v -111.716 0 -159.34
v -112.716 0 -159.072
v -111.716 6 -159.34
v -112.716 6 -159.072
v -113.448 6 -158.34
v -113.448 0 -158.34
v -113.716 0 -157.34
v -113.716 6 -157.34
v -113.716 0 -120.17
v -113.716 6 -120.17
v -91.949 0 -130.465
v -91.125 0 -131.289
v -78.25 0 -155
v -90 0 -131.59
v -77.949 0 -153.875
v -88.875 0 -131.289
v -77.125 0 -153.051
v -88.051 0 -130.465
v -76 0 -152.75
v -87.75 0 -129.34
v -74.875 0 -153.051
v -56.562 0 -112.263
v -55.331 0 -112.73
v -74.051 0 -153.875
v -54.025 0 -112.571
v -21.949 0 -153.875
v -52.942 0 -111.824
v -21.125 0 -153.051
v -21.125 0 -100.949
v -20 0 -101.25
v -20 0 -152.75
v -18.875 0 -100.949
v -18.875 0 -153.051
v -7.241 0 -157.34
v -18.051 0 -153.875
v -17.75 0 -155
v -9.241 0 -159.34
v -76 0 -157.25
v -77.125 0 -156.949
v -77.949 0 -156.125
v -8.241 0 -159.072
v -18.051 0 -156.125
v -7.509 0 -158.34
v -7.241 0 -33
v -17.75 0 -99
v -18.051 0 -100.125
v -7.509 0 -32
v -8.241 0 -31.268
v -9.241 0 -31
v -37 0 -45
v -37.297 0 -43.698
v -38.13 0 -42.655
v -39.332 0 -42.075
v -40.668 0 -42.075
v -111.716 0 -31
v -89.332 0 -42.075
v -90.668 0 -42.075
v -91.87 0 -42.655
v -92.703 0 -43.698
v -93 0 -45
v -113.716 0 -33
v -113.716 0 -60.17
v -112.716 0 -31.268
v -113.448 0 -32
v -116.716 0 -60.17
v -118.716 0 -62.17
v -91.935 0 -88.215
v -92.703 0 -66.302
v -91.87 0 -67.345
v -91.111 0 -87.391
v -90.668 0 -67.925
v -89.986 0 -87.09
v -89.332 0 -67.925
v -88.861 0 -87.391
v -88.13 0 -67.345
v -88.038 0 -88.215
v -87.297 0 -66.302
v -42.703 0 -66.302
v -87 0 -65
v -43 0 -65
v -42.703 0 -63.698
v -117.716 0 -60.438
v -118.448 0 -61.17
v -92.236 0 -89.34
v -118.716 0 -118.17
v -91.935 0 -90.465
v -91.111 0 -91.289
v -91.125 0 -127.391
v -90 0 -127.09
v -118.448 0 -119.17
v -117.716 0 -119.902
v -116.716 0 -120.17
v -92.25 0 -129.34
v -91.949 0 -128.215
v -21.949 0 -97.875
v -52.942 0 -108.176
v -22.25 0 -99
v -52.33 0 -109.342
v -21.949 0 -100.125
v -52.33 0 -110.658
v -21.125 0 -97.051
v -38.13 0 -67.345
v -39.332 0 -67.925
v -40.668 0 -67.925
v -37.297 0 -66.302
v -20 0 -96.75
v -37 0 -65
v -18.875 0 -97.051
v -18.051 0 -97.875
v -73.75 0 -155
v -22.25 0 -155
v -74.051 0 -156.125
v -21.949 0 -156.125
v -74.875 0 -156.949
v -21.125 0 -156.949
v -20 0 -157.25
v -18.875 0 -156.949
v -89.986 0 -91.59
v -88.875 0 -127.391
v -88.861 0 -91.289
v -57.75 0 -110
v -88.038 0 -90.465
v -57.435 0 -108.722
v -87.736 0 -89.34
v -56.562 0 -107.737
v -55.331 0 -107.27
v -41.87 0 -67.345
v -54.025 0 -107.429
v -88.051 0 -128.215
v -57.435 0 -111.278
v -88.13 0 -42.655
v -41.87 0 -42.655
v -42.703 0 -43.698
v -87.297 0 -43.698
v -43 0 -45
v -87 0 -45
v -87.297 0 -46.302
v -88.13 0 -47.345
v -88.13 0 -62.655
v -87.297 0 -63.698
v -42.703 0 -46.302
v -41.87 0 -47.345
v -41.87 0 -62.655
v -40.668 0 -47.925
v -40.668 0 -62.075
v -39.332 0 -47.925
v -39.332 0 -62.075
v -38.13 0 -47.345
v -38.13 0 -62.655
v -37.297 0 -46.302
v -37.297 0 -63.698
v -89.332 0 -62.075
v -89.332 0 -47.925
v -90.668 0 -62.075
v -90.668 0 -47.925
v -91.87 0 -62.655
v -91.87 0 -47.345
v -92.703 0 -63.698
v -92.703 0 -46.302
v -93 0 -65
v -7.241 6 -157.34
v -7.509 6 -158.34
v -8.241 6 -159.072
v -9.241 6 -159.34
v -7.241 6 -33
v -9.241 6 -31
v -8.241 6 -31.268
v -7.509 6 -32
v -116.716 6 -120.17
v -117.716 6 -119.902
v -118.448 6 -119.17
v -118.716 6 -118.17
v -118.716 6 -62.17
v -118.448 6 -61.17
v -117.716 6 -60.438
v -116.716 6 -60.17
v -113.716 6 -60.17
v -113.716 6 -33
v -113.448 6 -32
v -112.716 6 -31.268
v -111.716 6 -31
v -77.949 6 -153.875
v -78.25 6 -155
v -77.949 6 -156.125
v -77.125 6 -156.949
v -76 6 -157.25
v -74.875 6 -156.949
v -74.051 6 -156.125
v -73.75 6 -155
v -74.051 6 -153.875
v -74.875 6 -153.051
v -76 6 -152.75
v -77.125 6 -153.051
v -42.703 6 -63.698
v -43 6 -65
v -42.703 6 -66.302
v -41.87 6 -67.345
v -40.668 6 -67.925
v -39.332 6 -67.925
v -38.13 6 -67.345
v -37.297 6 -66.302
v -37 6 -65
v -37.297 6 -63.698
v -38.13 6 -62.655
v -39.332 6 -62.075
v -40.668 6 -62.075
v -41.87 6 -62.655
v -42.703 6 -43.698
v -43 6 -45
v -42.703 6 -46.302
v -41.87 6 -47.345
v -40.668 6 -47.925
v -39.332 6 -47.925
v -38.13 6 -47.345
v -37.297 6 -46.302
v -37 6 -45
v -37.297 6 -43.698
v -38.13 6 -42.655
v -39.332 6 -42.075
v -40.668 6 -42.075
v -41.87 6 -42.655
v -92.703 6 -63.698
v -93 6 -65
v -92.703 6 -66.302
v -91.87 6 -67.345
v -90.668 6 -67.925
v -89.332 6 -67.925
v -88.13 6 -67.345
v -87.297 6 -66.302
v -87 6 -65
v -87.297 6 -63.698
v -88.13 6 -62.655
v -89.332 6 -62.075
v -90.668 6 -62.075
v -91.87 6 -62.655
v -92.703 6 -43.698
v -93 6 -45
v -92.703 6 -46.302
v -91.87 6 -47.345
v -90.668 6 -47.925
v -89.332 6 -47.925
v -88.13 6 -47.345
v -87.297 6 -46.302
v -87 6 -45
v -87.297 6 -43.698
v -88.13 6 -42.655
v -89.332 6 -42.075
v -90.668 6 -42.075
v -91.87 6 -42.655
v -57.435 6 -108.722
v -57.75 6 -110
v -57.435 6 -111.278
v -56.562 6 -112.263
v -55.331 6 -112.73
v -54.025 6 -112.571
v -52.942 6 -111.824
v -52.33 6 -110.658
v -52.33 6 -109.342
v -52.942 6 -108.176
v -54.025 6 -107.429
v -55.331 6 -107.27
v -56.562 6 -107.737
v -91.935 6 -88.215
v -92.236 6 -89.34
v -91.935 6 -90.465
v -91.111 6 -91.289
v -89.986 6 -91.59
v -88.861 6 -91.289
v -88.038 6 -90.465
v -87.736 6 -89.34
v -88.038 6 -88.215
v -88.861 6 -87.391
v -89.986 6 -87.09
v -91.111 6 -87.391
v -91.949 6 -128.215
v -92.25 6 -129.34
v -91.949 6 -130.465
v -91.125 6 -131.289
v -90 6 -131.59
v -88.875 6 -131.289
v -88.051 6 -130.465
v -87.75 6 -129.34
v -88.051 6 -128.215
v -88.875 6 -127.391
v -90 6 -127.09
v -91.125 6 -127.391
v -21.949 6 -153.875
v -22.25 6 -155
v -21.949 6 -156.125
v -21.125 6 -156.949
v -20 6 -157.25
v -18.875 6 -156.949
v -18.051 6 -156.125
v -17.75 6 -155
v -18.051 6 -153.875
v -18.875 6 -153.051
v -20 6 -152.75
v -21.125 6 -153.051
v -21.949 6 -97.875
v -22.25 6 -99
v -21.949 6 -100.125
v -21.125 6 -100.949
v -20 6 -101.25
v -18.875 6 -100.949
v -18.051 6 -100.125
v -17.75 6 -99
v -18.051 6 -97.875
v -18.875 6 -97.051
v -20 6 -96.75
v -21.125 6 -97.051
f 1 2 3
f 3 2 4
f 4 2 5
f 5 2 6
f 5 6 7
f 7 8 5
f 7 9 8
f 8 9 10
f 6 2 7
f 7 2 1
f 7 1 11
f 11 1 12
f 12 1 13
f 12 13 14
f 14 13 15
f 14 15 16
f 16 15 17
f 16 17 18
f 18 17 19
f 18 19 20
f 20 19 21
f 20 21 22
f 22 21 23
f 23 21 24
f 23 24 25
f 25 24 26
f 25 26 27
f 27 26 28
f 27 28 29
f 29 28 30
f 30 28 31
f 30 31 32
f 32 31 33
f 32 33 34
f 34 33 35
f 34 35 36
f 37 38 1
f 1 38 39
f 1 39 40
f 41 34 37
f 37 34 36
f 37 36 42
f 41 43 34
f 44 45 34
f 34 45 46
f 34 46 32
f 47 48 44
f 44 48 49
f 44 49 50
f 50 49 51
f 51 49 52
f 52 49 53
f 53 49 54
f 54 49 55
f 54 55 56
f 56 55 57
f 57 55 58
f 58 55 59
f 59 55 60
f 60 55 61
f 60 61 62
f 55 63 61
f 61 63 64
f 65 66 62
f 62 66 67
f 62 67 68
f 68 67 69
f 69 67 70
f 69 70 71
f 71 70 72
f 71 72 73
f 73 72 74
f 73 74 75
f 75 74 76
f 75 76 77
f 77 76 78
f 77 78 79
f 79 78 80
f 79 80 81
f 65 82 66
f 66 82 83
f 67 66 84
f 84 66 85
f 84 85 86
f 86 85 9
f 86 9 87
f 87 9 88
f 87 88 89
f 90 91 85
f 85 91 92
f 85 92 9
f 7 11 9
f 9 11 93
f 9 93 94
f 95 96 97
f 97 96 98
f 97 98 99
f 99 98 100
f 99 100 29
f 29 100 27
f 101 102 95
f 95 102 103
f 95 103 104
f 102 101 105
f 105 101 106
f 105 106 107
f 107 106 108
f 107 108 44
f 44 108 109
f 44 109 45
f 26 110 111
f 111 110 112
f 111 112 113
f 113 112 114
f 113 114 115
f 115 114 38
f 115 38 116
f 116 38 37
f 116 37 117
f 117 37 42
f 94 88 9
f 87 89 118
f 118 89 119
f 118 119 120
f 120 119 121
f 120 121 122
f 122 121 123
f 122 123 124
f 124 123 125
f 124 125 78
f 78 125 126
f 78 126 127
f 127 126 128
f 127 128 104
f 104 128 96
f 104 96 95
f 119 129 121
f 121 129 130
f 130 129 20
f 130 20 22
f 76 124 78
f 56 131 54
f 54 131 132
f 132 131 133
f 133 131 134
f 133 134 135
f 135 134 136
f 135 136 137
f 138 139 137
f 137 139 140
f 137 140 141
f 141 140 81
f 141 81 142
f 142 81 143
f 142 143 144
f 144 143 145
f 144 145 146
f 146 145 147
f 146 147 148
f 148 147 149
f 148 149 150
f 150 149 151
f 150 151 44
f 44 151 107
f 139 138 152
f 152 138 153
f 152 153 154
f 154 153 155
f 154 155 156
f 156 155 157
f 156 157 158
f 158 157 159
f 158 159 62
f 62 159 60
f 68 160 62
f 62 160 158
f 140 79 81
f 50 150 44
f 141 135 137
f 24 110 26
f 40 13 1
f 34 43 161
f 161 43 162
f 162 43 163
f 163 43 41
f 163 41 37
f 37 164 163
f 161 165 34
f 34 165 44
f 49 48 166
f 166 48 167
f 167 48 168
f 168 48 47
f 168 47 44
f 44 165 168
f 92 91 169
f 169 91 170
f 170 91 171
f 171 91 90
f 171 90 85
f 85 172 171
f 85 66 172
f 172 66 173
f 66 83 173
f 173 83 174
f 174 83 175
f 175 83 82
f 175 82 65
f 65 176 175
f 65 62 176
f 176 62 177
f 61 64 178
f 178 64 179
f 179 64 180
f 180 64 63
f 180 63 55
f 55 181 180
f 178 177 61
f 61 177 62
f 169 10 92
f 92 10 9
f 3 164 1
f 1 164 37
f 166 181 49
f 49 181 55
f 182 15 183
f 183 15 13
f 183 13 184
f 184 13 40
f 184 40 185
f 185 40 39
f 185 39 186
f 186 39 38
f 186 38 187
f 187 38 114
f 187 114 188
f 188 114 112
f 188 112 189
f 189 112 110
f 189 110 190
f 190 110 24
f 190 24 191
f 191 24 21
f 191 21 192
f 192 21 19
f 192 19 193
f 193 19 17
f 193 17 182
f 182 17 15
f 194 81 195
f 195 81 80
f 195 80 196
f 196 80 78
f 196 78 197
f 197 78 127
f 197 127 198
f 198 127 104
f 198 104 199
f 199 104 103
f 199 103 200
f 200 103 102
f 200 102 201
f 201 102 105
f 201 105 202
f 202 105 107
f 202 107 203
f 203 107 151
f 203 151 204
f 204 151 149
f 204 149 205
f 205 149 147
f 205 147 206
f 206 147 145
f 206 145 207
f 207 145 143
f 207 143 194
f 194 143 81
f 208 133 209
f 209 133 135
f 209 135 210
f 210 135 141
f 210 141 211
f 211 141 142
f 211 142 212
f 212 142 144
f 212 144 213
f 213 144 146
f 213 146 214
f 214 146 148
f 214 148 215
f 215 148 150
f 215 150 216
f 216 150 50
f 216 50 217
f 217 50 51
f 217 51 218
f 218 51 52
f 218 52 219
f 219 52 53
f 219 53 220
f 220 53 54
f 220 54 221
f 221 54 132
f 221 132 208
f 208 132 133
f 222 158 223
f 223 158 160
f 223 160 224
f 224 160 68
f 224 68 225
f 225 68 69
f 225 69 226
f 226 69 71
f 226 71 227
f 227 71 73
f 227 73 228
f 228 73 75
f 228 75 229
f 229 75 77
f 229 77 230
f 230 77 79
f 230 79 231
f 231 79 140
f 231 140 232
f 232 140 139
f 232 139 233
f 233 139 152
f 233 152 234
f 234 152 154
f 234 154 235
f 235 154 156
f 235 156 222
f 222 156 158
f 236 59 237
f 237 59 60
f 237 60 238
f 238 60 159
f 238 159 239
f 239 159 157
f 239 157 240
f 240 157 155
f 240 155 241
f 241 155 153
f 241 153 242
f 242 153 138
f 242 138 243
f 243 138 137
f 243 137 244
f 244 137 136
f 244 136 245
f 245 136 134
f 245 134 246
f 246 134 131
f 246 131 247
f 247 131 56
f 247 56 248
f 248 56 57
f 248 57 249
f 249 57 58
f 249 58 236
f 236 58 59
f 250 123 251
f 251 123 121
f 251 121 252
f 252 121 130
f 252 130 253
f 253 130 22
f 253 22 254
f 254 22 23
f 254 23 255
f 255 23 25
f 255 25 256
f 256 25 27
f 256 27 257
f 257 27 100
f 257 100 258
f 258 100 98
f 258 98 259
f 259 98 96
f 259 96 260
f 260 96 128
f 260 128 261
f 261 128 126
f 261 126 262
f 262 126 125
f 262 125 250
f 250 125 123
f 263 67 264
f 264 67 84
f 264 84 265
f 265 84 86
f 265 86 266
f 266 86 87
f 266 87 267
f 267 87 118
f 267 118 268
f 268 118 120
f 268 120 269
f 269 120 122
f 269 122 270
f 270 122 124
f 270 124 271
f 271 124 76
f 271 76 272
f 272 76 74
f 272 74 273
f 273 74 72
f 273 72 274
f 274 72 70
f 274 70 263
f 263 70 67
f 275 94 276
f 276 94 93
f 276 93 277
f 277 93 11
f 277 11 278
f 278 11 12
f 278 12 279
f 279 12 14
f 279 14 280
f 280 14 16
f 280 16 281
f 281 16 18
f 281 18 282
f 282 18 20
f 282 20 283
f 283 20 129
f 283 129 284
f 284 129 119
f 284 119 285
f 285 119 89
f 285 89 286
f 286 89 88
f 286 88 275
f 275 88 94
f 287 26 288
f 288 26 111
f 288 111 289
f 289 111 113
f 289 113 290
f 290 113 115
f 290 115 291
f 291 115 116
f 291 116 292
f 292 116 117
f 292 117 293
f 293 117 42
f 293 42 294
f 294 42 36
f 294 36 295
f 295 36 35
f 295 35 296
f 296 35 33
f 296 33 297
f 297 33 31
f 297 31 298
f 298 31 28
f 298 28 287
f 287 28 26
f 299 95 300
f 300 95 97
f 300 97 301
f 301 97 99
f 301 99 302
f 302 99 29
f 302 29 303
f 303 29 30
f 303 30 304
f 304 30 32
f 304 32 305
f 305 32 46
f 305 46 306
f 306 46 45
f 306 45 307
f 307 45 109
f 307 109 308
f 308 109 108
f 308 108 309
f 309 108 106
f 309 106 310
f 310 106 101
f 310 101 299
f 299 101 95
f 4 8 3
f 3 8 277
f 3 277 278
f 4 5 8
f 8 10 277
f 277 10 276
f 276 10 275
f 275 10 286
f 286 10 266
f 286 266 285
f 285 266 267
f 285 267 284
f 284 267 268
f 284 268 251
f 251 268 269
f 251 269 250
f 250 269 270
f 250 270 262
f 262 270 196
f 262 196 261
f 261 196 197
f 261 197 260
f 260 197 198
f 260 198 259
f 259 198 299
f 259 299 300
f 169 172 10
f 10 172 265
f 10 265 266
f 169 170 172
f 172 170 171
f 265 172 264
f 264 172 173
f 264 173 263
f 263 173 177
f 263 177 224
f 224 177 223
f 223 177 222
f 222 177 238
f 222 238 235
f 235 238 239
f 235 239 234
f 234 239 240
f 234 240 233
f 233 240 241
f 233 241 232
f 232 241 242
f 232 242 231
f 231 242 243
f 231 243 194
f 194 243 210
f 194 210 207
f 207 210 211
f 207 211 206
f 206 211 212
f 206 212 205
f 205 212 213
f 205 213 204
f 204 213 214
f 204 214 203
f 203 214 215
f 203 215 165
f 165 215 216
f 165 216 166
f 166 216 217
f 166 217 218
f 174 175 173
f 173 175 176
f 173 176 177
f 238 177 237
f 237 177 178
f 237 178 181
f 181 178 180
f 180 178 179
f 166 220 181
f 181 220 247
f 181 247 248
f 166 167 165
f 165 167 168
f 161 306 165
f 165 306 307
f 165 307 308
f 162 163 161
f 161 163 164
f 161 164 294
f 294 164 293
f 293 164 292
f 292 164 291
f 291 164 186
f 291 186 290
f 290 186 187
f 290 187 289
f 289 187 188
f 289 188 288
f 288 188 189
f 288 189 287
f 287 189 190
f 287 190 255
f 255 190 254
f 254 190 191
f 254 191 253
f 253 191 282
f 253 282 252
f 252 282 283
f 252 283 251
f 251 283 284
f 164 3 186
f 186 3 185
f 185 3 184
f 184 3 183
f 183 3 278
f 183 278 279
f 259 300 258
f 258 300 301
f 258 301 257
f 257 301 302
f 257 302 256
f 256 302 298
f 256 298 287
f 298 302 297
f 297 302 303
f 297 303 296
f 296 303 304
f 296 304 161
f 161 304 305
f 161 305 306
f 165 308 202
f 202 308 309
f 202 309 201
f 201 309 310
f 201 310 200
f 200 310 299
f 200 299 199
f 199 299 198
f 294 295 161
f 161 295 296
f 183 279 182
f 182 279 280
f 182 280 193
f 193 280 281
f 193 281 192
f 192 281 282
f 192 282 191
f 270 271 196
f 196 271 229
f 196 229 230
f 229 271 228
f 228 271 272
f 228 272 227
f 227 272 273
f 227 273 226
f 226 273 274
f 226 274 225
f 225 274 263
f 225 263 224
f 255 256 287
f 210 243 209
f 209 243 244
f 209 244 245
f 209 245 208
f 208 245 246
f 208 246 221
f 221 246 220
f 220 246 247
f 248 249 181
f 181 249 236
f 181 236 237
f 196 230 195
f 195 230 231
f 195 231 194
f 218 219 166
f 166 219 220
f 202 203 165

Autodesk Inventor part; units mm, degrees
ref_plane "YZ Plane" through (0, 0, 0) normal (1, 0, 0) x (0, 1, 0)
ref_plane "XZ Plane" through (0, 0, 0) normal (0, 1, 0) x (-1, 0, 0)
ref_plane "XY Plane" through (0, 0, 0) normal (0, 0, 1) x (1, 0, 0)
sketch "Sketch1" plane through (0, 0, 0) normal (0, 1, 0) x (-1, 0, 0)
  line L0 (232.1908, -176.5808) -> (232.1908, -3.7592)
  arc A0 (232.1908, -3.7592) -> (227.4316, 1) centre (227.4316, -3.7592) ccw
  line L1 (227.4316, 1) -> (0, 1)
  arc A1 (0, 1) -> (-4.7592, -3.7592) centre (0, -3.7592) ccw
  arc A2 (-4.7592, -176.5808) -> (0, -181.34) centre (0, -176.5808) ccw
  arc A3 (227.4316, -181.34) -> (232.1908, -176.5808) centre (227.4316, -176.5808) ccw
  circle A4 centre (130, -129.34) radius 2.25
  circle A5 centre (129.9861, -89.34) radius 2.25
  circle A6 centre (90, -129.34) radius 2.25
  circle A7 centre (89.9861, -89.34) radius 2.25
  circle A8 centre (180, -110) radius 2.75
  circle A9 centre (55, -110) radius 2.75
  circle A10 centre (90, -45) radius 3
  circle A11 centre (190, -45) radius 3
  circle A12 centre (190, -65) radius 3
  circle A13 centre (90, -65) radius 3
  circle A14 centre (140, -45) radius 3
  circle A15 centre (40, -45) radius 3
  circle A16 centre (140, -65) radius 3
  circle A17 centre (40, -65) radius 3
  line L2 (230.1908, -176.5808) -> (230.1908, -3.7592)
  arc A18 (230.1908, -3.7592) -> (227.4316, -1) centre (227.4316, -3.7592) ccw
  line L3 (227.4316, -1) -> (0, -1)
  arc A19 (0, -1) -> (-2.7592, -3.7592) centre (0, -3.7592) ccw
  arc A20 (-2.7592, -176.5808) -> (0, -179.34) centre (0, -176.5808) ccw
  arc A21 (227.4316, -179.34) -> (230.1908, -176.5808) centre (227.4316, -176.5808) ccw
  line L4 (-4.7592, -3.7592) -> (-4.7592, -176.5808)
  line L5 (-2.7592, -3.7592) -> (-2.7592, -176.5808)
  line L6 (0, -179.34) -> (227.4316, -179.34)
  line L7 (227.4316, -181.34) -> (0, -181.34)
  line L8 (0, 0) -> (0, -15)
  line L9 (0, 0) -> (15, 0) construction
  line L10 (0, 0) -> (15, 0)
  line L11 (0, 0) -> (15, 0) construction
  circle A22 centre (20, -155) radius 2.25
  circle A23 centre (76, -155) radius 2.25
  circle A24 centre (20, -99) radius 2.25
  point P0 (230.1908, -3.7592)
  point P1 (0, -1)
  dimension "d0" = 2
  dimension "d1" = 2
  dimension "d2" = 2
  dimension "d3" = 2
  dimension "d5" = 2
  dimension "d7" = 2
  dimension "d8" = 227.4316
  dimension "d9" = 172.8216
  dimension "d10" = 4.7592
  dimension "d45" = 15
  dimension "d46" = 90
  dimension "d47" = 15
  dimension "d48" = 0
  dimension "d49" = 110
  dimension "d50" = 55
  dimension "d51" = 125
  dimension "d52" = 110
  dimension "d54" = 40
  dimension "d55" = 40
  dimension "d56" = 40
  dimension "d57" = 40
  dimension "d58" = 50
  dimension "d59" = 100.1908
  dimension "d60" = 2.7592
  dimension "d61" = 1
  dimension "d62" = 4.7592
  dimension "d63" = 178.34
  dimension "d64" = 180.34
  dimension "d65" = 172.8216
  dimension "d66" = 230.1908
  dimension "d67" = 4.5
  dimension "d68" = 5.5
  dimension "d69" = 6
  dimension "d70" = 40.1908
  dimension "d71" = 64
  dimension "d72" = 20
  dimension "d73" = 50
  dimension "d74" = 50
  dimension "d75" = 50
  dimension "d76" = 20
  dimension "d77" = 20
  dimension "d78" = 20
  dimension "d79" = 50
  dimension "d87" = 4.5
  dimension "d89" = 45
  dimension "d90" = 35
  dimension "d91" = 4.5
  dimension "d92" = 56
  dimension "d93" = 4.5
  dimension "d94" = 56
extrude "Extrusion1" add sketch "Sketch1" along normal blind 6 contours A21 L6 A20 L5 A19 L3 A18 L2
sketch "Sketch2" plane through (0, 6, 0) normal (0, 1, 0) x (1, 0, 0)
  line L0 (-232.1908, 176.5808) -> (-232.1908, 3.7592)
  arc A0 (-232.1908, 3.7592) -> (-227.4316, -1) centre (-227.4316, 3.7592) ccw
  line L1 (-227.4316, -1) -> (0, -1)
  arc A1 (0, -1) -> (4.7592, 3.7592) centre (0, 3.7592) ccw
  arc A2 (4.7592, 176.5808) -> (0, 181.34) centre (0, 176.5808) ccw
  arc A3 (-227.4316, 181.34) -> (-232.1908, 176.5808) centre (-227.4316, 176.5808) ccw
  circle A4 centre (-130, 135) radius 2
  circle A5 centre (-130, 95) radius 2
  circle A6 centre (-90, 135) radius 2
  circle A7 centre (-90, 95) radius 2
  circle A8 centre (-160.0797, 100) radius 2.75
  circle A9 centre (-60.0797, 100) radius 2.75
  circle A10 centre (-90, 45) radius 2.5
  circle A11 centre (-190, 45) radius 2.5
  circle A12 centre (-190, 65) radius 2.5
  circle A13 centre (-90, 65) radius 2.5
  circle A14 centre (-140, 45) radius 2.5
  circle A15 centre (-40, 45) radius 2.5
  circle A16 centre (-140, 65) radius 2.5
  circle A17 centre (-40, 65) radius 2.5
  line L2 (-230.1908, 176.5808) -> (-230.1908, 3.7592)
  arc A18 (-230.1908, 3.7592) -> (-227.4316, 1) centre (-227.4316, 3.7592) ccw
  line L3 (-227.4316, 1) -> (0, 1)
  arc A19 (0, 1) -> (2.7592, 3.7592) centre (0, 3.7592) ccw
  arc A20 (2.7592, 176.5808) -> (0, 179.34) centre (0, 176.5808) ccw
  arc A21 (-227.4316, 179.34) -> (-230.1908, 176.5808) centre (-227.4316, 176.5808) ccw
  line L4 (4.7592, 3.7592) -> (4.7592, 176.5808)
  line L5 (2.7592, 3.7592) -> (2.7592, 176.5808)
  line L6 (0, 179.34) -> (-227.4316, 179.34)
  line L7 (-227.4316, 181.34) -> (0, 181.34)
  line L8 (0, 179.34) -> (-227.4316, 179.34) projected
  line L9 (-113.7158, 179.34) -> (-113.7158, 1)
  line L10 (-227.4316, 1) -> (0, 1) projected
  line L11 (-118.7158, 120.17) -> (-108.7158, 120.17)
  line L12 (-108.7158, 120.17) -> (-108.7158, 60.17)
  line L13 (-108.7158, 60.17) -> (-118.7158, 60.17)
  line L14 (-118.7158, 60.17) -> (-118.7158, 120.17)
  line L15 (-118.7158, 120.17) -> (-108.7158, 60.17) construction
  line L16 (-108.7158, 120.17) -> (-118.7158, 60.17) construction
  line L17 (-113.7158, 179.34) -> (-113.7158, 179.34)
  line L18 (2.7592, 159.34) -> (-230.1908, 159.34)
  line L19 (-230.1908, 159.34) -> (-230.1908, 199.34)
  line L20 (-230.1908, 199.34) -> (2.7592, 199.34)
  line L21 (2.7592, 199.34) -> (2.7592, 159.34)
  line L22 (2.7592, 159.34) -> (-230.1908, 199.34) construction
  line L23 (-230.1908, 159.34) -> (2.7592, 199.34) construction
  line L24 (-113.7158, 1) -> (-113.7158, 16)
  line L25 (-230.1908, 31) -> (2.7592, 31)
  line L26 (2.7592, 31) -> (2.7592, 1)
  line L27 (2.7592, 1) -> (-230.1908, 1)
  line L28 (-230.1908, 1) -> (-230.1908, 31)
  line L29 (-230.1908, 31) -> (2.7592, 1) construction
  line L30 (2.7592, 31) -> (-230.1908, 1) construction
  line L31 (-227.4316, 1) -> (0, 1) projected
  line L32 (-230.1908, 199.34) -> (-200.1908, 199.34)
  line L33 (-200.1908, 199.34) -> (-200.1908, 1)
  line L34 (-200.1908, 1) -> (-230.1908, 1)
  line L35 (-230.1908, 1) -> (-230.1908, 199.34)
  line L36 (2.7592, 1) -> (-7.2408, 1)
  line L37 (-7.2408, 1) -> (-7.2408, 199.34)
  line L38 (-7.2408, 199.34) -> (2.7592, 199.34)
  line L39 (2.7592, 199.34) -> (2.7592, 1)
  point P0 (230.1908, -176.5808)
  point P1 (230.1908, -3.7592)
  point P2 (227.4316, -1)
  point P3 (0, -1)
  point P4 (0, 0)
  point P5 (230.1908, -176.5808)
  point P6 (230.1908, -3.7592)
  point P7 (227.4316, -1)
  point P8 (0, -1)
  point P9 (-113.7158, 90.17)
  point P10 (-113.7158, 120.17)
  point P11 (-113.7158, 60.17)
  point P12 (-113.7158, 1)
  point P13 (0, 1)
  point P14 (-230.1908, 3.7592)
  point P15 (-227.4316, 1)
  point P16 (-113.7158, 159.34)
  point P17 (-7.2408, 159.34)
  point P18 (-7.2408, 31)
  point P19 (-113.7158, 31)
  dimension "d22" = 2
  dimension "d23" = 2
  dimension "d24" = 2
  dimension "d25" = 2
  dimension "d26" = 2
  dimension "d27" = 2
  dimension "d28" = 227.4316
  dimension "d29" = 172.8216
  dimension "d30" = 4.7592
  dimension "d31" = 10
  dimension "d32" = 60
  dimension "d37" = 0
  dimension "d38" = 40
  dimension "d39" = 15
  dimension "d40" = 30
  dimension "d41" = 30
  dimension "d42" = 10
extrude "Extrusion3" cut sketch "Sketch2" against normal through all contours A21 L6 L33 L18 L2 | L18 L33 L25 L2 | L6 L9 L18 L33 | L25 L33 L3 A18 L2 | L18 L9 L11 L14 L13 L25 L33 | L37 L18 L9 L6 | L6 A20 L5 L18 L37 | L25 L9 L3 L33 | L18 L5 L25 L37 | L25 L37 L3 L9 | L25 L5 A19 L3 L37 | A4 | A5 | A8 | A11 | A12 | A14 | A16
fillet "Fillet3" radius 2 6 edges at (-113.7158, 3, -31) (-118.7158, 3, -60.17) (-118.7158, 3, -120.17) (-7.2408, 3, -31) (-7.2408, 3, -159.34) (-113.7158, 3, -159.34)
equation "\"d1\" = d0"
equation "\"d2\" = d0"
equation "\"d3\" = d0"
equation "\"d5\" = d0"
equation "\"d7\" = d0"
equation "\"d23\" = d22"
equation "\"d24\" = d22"
equation "\"d25\" = d22"
equation "\"d26\" = d22"
equation "\"d27\" = d22"
properties part number "EboxBottom_2"
